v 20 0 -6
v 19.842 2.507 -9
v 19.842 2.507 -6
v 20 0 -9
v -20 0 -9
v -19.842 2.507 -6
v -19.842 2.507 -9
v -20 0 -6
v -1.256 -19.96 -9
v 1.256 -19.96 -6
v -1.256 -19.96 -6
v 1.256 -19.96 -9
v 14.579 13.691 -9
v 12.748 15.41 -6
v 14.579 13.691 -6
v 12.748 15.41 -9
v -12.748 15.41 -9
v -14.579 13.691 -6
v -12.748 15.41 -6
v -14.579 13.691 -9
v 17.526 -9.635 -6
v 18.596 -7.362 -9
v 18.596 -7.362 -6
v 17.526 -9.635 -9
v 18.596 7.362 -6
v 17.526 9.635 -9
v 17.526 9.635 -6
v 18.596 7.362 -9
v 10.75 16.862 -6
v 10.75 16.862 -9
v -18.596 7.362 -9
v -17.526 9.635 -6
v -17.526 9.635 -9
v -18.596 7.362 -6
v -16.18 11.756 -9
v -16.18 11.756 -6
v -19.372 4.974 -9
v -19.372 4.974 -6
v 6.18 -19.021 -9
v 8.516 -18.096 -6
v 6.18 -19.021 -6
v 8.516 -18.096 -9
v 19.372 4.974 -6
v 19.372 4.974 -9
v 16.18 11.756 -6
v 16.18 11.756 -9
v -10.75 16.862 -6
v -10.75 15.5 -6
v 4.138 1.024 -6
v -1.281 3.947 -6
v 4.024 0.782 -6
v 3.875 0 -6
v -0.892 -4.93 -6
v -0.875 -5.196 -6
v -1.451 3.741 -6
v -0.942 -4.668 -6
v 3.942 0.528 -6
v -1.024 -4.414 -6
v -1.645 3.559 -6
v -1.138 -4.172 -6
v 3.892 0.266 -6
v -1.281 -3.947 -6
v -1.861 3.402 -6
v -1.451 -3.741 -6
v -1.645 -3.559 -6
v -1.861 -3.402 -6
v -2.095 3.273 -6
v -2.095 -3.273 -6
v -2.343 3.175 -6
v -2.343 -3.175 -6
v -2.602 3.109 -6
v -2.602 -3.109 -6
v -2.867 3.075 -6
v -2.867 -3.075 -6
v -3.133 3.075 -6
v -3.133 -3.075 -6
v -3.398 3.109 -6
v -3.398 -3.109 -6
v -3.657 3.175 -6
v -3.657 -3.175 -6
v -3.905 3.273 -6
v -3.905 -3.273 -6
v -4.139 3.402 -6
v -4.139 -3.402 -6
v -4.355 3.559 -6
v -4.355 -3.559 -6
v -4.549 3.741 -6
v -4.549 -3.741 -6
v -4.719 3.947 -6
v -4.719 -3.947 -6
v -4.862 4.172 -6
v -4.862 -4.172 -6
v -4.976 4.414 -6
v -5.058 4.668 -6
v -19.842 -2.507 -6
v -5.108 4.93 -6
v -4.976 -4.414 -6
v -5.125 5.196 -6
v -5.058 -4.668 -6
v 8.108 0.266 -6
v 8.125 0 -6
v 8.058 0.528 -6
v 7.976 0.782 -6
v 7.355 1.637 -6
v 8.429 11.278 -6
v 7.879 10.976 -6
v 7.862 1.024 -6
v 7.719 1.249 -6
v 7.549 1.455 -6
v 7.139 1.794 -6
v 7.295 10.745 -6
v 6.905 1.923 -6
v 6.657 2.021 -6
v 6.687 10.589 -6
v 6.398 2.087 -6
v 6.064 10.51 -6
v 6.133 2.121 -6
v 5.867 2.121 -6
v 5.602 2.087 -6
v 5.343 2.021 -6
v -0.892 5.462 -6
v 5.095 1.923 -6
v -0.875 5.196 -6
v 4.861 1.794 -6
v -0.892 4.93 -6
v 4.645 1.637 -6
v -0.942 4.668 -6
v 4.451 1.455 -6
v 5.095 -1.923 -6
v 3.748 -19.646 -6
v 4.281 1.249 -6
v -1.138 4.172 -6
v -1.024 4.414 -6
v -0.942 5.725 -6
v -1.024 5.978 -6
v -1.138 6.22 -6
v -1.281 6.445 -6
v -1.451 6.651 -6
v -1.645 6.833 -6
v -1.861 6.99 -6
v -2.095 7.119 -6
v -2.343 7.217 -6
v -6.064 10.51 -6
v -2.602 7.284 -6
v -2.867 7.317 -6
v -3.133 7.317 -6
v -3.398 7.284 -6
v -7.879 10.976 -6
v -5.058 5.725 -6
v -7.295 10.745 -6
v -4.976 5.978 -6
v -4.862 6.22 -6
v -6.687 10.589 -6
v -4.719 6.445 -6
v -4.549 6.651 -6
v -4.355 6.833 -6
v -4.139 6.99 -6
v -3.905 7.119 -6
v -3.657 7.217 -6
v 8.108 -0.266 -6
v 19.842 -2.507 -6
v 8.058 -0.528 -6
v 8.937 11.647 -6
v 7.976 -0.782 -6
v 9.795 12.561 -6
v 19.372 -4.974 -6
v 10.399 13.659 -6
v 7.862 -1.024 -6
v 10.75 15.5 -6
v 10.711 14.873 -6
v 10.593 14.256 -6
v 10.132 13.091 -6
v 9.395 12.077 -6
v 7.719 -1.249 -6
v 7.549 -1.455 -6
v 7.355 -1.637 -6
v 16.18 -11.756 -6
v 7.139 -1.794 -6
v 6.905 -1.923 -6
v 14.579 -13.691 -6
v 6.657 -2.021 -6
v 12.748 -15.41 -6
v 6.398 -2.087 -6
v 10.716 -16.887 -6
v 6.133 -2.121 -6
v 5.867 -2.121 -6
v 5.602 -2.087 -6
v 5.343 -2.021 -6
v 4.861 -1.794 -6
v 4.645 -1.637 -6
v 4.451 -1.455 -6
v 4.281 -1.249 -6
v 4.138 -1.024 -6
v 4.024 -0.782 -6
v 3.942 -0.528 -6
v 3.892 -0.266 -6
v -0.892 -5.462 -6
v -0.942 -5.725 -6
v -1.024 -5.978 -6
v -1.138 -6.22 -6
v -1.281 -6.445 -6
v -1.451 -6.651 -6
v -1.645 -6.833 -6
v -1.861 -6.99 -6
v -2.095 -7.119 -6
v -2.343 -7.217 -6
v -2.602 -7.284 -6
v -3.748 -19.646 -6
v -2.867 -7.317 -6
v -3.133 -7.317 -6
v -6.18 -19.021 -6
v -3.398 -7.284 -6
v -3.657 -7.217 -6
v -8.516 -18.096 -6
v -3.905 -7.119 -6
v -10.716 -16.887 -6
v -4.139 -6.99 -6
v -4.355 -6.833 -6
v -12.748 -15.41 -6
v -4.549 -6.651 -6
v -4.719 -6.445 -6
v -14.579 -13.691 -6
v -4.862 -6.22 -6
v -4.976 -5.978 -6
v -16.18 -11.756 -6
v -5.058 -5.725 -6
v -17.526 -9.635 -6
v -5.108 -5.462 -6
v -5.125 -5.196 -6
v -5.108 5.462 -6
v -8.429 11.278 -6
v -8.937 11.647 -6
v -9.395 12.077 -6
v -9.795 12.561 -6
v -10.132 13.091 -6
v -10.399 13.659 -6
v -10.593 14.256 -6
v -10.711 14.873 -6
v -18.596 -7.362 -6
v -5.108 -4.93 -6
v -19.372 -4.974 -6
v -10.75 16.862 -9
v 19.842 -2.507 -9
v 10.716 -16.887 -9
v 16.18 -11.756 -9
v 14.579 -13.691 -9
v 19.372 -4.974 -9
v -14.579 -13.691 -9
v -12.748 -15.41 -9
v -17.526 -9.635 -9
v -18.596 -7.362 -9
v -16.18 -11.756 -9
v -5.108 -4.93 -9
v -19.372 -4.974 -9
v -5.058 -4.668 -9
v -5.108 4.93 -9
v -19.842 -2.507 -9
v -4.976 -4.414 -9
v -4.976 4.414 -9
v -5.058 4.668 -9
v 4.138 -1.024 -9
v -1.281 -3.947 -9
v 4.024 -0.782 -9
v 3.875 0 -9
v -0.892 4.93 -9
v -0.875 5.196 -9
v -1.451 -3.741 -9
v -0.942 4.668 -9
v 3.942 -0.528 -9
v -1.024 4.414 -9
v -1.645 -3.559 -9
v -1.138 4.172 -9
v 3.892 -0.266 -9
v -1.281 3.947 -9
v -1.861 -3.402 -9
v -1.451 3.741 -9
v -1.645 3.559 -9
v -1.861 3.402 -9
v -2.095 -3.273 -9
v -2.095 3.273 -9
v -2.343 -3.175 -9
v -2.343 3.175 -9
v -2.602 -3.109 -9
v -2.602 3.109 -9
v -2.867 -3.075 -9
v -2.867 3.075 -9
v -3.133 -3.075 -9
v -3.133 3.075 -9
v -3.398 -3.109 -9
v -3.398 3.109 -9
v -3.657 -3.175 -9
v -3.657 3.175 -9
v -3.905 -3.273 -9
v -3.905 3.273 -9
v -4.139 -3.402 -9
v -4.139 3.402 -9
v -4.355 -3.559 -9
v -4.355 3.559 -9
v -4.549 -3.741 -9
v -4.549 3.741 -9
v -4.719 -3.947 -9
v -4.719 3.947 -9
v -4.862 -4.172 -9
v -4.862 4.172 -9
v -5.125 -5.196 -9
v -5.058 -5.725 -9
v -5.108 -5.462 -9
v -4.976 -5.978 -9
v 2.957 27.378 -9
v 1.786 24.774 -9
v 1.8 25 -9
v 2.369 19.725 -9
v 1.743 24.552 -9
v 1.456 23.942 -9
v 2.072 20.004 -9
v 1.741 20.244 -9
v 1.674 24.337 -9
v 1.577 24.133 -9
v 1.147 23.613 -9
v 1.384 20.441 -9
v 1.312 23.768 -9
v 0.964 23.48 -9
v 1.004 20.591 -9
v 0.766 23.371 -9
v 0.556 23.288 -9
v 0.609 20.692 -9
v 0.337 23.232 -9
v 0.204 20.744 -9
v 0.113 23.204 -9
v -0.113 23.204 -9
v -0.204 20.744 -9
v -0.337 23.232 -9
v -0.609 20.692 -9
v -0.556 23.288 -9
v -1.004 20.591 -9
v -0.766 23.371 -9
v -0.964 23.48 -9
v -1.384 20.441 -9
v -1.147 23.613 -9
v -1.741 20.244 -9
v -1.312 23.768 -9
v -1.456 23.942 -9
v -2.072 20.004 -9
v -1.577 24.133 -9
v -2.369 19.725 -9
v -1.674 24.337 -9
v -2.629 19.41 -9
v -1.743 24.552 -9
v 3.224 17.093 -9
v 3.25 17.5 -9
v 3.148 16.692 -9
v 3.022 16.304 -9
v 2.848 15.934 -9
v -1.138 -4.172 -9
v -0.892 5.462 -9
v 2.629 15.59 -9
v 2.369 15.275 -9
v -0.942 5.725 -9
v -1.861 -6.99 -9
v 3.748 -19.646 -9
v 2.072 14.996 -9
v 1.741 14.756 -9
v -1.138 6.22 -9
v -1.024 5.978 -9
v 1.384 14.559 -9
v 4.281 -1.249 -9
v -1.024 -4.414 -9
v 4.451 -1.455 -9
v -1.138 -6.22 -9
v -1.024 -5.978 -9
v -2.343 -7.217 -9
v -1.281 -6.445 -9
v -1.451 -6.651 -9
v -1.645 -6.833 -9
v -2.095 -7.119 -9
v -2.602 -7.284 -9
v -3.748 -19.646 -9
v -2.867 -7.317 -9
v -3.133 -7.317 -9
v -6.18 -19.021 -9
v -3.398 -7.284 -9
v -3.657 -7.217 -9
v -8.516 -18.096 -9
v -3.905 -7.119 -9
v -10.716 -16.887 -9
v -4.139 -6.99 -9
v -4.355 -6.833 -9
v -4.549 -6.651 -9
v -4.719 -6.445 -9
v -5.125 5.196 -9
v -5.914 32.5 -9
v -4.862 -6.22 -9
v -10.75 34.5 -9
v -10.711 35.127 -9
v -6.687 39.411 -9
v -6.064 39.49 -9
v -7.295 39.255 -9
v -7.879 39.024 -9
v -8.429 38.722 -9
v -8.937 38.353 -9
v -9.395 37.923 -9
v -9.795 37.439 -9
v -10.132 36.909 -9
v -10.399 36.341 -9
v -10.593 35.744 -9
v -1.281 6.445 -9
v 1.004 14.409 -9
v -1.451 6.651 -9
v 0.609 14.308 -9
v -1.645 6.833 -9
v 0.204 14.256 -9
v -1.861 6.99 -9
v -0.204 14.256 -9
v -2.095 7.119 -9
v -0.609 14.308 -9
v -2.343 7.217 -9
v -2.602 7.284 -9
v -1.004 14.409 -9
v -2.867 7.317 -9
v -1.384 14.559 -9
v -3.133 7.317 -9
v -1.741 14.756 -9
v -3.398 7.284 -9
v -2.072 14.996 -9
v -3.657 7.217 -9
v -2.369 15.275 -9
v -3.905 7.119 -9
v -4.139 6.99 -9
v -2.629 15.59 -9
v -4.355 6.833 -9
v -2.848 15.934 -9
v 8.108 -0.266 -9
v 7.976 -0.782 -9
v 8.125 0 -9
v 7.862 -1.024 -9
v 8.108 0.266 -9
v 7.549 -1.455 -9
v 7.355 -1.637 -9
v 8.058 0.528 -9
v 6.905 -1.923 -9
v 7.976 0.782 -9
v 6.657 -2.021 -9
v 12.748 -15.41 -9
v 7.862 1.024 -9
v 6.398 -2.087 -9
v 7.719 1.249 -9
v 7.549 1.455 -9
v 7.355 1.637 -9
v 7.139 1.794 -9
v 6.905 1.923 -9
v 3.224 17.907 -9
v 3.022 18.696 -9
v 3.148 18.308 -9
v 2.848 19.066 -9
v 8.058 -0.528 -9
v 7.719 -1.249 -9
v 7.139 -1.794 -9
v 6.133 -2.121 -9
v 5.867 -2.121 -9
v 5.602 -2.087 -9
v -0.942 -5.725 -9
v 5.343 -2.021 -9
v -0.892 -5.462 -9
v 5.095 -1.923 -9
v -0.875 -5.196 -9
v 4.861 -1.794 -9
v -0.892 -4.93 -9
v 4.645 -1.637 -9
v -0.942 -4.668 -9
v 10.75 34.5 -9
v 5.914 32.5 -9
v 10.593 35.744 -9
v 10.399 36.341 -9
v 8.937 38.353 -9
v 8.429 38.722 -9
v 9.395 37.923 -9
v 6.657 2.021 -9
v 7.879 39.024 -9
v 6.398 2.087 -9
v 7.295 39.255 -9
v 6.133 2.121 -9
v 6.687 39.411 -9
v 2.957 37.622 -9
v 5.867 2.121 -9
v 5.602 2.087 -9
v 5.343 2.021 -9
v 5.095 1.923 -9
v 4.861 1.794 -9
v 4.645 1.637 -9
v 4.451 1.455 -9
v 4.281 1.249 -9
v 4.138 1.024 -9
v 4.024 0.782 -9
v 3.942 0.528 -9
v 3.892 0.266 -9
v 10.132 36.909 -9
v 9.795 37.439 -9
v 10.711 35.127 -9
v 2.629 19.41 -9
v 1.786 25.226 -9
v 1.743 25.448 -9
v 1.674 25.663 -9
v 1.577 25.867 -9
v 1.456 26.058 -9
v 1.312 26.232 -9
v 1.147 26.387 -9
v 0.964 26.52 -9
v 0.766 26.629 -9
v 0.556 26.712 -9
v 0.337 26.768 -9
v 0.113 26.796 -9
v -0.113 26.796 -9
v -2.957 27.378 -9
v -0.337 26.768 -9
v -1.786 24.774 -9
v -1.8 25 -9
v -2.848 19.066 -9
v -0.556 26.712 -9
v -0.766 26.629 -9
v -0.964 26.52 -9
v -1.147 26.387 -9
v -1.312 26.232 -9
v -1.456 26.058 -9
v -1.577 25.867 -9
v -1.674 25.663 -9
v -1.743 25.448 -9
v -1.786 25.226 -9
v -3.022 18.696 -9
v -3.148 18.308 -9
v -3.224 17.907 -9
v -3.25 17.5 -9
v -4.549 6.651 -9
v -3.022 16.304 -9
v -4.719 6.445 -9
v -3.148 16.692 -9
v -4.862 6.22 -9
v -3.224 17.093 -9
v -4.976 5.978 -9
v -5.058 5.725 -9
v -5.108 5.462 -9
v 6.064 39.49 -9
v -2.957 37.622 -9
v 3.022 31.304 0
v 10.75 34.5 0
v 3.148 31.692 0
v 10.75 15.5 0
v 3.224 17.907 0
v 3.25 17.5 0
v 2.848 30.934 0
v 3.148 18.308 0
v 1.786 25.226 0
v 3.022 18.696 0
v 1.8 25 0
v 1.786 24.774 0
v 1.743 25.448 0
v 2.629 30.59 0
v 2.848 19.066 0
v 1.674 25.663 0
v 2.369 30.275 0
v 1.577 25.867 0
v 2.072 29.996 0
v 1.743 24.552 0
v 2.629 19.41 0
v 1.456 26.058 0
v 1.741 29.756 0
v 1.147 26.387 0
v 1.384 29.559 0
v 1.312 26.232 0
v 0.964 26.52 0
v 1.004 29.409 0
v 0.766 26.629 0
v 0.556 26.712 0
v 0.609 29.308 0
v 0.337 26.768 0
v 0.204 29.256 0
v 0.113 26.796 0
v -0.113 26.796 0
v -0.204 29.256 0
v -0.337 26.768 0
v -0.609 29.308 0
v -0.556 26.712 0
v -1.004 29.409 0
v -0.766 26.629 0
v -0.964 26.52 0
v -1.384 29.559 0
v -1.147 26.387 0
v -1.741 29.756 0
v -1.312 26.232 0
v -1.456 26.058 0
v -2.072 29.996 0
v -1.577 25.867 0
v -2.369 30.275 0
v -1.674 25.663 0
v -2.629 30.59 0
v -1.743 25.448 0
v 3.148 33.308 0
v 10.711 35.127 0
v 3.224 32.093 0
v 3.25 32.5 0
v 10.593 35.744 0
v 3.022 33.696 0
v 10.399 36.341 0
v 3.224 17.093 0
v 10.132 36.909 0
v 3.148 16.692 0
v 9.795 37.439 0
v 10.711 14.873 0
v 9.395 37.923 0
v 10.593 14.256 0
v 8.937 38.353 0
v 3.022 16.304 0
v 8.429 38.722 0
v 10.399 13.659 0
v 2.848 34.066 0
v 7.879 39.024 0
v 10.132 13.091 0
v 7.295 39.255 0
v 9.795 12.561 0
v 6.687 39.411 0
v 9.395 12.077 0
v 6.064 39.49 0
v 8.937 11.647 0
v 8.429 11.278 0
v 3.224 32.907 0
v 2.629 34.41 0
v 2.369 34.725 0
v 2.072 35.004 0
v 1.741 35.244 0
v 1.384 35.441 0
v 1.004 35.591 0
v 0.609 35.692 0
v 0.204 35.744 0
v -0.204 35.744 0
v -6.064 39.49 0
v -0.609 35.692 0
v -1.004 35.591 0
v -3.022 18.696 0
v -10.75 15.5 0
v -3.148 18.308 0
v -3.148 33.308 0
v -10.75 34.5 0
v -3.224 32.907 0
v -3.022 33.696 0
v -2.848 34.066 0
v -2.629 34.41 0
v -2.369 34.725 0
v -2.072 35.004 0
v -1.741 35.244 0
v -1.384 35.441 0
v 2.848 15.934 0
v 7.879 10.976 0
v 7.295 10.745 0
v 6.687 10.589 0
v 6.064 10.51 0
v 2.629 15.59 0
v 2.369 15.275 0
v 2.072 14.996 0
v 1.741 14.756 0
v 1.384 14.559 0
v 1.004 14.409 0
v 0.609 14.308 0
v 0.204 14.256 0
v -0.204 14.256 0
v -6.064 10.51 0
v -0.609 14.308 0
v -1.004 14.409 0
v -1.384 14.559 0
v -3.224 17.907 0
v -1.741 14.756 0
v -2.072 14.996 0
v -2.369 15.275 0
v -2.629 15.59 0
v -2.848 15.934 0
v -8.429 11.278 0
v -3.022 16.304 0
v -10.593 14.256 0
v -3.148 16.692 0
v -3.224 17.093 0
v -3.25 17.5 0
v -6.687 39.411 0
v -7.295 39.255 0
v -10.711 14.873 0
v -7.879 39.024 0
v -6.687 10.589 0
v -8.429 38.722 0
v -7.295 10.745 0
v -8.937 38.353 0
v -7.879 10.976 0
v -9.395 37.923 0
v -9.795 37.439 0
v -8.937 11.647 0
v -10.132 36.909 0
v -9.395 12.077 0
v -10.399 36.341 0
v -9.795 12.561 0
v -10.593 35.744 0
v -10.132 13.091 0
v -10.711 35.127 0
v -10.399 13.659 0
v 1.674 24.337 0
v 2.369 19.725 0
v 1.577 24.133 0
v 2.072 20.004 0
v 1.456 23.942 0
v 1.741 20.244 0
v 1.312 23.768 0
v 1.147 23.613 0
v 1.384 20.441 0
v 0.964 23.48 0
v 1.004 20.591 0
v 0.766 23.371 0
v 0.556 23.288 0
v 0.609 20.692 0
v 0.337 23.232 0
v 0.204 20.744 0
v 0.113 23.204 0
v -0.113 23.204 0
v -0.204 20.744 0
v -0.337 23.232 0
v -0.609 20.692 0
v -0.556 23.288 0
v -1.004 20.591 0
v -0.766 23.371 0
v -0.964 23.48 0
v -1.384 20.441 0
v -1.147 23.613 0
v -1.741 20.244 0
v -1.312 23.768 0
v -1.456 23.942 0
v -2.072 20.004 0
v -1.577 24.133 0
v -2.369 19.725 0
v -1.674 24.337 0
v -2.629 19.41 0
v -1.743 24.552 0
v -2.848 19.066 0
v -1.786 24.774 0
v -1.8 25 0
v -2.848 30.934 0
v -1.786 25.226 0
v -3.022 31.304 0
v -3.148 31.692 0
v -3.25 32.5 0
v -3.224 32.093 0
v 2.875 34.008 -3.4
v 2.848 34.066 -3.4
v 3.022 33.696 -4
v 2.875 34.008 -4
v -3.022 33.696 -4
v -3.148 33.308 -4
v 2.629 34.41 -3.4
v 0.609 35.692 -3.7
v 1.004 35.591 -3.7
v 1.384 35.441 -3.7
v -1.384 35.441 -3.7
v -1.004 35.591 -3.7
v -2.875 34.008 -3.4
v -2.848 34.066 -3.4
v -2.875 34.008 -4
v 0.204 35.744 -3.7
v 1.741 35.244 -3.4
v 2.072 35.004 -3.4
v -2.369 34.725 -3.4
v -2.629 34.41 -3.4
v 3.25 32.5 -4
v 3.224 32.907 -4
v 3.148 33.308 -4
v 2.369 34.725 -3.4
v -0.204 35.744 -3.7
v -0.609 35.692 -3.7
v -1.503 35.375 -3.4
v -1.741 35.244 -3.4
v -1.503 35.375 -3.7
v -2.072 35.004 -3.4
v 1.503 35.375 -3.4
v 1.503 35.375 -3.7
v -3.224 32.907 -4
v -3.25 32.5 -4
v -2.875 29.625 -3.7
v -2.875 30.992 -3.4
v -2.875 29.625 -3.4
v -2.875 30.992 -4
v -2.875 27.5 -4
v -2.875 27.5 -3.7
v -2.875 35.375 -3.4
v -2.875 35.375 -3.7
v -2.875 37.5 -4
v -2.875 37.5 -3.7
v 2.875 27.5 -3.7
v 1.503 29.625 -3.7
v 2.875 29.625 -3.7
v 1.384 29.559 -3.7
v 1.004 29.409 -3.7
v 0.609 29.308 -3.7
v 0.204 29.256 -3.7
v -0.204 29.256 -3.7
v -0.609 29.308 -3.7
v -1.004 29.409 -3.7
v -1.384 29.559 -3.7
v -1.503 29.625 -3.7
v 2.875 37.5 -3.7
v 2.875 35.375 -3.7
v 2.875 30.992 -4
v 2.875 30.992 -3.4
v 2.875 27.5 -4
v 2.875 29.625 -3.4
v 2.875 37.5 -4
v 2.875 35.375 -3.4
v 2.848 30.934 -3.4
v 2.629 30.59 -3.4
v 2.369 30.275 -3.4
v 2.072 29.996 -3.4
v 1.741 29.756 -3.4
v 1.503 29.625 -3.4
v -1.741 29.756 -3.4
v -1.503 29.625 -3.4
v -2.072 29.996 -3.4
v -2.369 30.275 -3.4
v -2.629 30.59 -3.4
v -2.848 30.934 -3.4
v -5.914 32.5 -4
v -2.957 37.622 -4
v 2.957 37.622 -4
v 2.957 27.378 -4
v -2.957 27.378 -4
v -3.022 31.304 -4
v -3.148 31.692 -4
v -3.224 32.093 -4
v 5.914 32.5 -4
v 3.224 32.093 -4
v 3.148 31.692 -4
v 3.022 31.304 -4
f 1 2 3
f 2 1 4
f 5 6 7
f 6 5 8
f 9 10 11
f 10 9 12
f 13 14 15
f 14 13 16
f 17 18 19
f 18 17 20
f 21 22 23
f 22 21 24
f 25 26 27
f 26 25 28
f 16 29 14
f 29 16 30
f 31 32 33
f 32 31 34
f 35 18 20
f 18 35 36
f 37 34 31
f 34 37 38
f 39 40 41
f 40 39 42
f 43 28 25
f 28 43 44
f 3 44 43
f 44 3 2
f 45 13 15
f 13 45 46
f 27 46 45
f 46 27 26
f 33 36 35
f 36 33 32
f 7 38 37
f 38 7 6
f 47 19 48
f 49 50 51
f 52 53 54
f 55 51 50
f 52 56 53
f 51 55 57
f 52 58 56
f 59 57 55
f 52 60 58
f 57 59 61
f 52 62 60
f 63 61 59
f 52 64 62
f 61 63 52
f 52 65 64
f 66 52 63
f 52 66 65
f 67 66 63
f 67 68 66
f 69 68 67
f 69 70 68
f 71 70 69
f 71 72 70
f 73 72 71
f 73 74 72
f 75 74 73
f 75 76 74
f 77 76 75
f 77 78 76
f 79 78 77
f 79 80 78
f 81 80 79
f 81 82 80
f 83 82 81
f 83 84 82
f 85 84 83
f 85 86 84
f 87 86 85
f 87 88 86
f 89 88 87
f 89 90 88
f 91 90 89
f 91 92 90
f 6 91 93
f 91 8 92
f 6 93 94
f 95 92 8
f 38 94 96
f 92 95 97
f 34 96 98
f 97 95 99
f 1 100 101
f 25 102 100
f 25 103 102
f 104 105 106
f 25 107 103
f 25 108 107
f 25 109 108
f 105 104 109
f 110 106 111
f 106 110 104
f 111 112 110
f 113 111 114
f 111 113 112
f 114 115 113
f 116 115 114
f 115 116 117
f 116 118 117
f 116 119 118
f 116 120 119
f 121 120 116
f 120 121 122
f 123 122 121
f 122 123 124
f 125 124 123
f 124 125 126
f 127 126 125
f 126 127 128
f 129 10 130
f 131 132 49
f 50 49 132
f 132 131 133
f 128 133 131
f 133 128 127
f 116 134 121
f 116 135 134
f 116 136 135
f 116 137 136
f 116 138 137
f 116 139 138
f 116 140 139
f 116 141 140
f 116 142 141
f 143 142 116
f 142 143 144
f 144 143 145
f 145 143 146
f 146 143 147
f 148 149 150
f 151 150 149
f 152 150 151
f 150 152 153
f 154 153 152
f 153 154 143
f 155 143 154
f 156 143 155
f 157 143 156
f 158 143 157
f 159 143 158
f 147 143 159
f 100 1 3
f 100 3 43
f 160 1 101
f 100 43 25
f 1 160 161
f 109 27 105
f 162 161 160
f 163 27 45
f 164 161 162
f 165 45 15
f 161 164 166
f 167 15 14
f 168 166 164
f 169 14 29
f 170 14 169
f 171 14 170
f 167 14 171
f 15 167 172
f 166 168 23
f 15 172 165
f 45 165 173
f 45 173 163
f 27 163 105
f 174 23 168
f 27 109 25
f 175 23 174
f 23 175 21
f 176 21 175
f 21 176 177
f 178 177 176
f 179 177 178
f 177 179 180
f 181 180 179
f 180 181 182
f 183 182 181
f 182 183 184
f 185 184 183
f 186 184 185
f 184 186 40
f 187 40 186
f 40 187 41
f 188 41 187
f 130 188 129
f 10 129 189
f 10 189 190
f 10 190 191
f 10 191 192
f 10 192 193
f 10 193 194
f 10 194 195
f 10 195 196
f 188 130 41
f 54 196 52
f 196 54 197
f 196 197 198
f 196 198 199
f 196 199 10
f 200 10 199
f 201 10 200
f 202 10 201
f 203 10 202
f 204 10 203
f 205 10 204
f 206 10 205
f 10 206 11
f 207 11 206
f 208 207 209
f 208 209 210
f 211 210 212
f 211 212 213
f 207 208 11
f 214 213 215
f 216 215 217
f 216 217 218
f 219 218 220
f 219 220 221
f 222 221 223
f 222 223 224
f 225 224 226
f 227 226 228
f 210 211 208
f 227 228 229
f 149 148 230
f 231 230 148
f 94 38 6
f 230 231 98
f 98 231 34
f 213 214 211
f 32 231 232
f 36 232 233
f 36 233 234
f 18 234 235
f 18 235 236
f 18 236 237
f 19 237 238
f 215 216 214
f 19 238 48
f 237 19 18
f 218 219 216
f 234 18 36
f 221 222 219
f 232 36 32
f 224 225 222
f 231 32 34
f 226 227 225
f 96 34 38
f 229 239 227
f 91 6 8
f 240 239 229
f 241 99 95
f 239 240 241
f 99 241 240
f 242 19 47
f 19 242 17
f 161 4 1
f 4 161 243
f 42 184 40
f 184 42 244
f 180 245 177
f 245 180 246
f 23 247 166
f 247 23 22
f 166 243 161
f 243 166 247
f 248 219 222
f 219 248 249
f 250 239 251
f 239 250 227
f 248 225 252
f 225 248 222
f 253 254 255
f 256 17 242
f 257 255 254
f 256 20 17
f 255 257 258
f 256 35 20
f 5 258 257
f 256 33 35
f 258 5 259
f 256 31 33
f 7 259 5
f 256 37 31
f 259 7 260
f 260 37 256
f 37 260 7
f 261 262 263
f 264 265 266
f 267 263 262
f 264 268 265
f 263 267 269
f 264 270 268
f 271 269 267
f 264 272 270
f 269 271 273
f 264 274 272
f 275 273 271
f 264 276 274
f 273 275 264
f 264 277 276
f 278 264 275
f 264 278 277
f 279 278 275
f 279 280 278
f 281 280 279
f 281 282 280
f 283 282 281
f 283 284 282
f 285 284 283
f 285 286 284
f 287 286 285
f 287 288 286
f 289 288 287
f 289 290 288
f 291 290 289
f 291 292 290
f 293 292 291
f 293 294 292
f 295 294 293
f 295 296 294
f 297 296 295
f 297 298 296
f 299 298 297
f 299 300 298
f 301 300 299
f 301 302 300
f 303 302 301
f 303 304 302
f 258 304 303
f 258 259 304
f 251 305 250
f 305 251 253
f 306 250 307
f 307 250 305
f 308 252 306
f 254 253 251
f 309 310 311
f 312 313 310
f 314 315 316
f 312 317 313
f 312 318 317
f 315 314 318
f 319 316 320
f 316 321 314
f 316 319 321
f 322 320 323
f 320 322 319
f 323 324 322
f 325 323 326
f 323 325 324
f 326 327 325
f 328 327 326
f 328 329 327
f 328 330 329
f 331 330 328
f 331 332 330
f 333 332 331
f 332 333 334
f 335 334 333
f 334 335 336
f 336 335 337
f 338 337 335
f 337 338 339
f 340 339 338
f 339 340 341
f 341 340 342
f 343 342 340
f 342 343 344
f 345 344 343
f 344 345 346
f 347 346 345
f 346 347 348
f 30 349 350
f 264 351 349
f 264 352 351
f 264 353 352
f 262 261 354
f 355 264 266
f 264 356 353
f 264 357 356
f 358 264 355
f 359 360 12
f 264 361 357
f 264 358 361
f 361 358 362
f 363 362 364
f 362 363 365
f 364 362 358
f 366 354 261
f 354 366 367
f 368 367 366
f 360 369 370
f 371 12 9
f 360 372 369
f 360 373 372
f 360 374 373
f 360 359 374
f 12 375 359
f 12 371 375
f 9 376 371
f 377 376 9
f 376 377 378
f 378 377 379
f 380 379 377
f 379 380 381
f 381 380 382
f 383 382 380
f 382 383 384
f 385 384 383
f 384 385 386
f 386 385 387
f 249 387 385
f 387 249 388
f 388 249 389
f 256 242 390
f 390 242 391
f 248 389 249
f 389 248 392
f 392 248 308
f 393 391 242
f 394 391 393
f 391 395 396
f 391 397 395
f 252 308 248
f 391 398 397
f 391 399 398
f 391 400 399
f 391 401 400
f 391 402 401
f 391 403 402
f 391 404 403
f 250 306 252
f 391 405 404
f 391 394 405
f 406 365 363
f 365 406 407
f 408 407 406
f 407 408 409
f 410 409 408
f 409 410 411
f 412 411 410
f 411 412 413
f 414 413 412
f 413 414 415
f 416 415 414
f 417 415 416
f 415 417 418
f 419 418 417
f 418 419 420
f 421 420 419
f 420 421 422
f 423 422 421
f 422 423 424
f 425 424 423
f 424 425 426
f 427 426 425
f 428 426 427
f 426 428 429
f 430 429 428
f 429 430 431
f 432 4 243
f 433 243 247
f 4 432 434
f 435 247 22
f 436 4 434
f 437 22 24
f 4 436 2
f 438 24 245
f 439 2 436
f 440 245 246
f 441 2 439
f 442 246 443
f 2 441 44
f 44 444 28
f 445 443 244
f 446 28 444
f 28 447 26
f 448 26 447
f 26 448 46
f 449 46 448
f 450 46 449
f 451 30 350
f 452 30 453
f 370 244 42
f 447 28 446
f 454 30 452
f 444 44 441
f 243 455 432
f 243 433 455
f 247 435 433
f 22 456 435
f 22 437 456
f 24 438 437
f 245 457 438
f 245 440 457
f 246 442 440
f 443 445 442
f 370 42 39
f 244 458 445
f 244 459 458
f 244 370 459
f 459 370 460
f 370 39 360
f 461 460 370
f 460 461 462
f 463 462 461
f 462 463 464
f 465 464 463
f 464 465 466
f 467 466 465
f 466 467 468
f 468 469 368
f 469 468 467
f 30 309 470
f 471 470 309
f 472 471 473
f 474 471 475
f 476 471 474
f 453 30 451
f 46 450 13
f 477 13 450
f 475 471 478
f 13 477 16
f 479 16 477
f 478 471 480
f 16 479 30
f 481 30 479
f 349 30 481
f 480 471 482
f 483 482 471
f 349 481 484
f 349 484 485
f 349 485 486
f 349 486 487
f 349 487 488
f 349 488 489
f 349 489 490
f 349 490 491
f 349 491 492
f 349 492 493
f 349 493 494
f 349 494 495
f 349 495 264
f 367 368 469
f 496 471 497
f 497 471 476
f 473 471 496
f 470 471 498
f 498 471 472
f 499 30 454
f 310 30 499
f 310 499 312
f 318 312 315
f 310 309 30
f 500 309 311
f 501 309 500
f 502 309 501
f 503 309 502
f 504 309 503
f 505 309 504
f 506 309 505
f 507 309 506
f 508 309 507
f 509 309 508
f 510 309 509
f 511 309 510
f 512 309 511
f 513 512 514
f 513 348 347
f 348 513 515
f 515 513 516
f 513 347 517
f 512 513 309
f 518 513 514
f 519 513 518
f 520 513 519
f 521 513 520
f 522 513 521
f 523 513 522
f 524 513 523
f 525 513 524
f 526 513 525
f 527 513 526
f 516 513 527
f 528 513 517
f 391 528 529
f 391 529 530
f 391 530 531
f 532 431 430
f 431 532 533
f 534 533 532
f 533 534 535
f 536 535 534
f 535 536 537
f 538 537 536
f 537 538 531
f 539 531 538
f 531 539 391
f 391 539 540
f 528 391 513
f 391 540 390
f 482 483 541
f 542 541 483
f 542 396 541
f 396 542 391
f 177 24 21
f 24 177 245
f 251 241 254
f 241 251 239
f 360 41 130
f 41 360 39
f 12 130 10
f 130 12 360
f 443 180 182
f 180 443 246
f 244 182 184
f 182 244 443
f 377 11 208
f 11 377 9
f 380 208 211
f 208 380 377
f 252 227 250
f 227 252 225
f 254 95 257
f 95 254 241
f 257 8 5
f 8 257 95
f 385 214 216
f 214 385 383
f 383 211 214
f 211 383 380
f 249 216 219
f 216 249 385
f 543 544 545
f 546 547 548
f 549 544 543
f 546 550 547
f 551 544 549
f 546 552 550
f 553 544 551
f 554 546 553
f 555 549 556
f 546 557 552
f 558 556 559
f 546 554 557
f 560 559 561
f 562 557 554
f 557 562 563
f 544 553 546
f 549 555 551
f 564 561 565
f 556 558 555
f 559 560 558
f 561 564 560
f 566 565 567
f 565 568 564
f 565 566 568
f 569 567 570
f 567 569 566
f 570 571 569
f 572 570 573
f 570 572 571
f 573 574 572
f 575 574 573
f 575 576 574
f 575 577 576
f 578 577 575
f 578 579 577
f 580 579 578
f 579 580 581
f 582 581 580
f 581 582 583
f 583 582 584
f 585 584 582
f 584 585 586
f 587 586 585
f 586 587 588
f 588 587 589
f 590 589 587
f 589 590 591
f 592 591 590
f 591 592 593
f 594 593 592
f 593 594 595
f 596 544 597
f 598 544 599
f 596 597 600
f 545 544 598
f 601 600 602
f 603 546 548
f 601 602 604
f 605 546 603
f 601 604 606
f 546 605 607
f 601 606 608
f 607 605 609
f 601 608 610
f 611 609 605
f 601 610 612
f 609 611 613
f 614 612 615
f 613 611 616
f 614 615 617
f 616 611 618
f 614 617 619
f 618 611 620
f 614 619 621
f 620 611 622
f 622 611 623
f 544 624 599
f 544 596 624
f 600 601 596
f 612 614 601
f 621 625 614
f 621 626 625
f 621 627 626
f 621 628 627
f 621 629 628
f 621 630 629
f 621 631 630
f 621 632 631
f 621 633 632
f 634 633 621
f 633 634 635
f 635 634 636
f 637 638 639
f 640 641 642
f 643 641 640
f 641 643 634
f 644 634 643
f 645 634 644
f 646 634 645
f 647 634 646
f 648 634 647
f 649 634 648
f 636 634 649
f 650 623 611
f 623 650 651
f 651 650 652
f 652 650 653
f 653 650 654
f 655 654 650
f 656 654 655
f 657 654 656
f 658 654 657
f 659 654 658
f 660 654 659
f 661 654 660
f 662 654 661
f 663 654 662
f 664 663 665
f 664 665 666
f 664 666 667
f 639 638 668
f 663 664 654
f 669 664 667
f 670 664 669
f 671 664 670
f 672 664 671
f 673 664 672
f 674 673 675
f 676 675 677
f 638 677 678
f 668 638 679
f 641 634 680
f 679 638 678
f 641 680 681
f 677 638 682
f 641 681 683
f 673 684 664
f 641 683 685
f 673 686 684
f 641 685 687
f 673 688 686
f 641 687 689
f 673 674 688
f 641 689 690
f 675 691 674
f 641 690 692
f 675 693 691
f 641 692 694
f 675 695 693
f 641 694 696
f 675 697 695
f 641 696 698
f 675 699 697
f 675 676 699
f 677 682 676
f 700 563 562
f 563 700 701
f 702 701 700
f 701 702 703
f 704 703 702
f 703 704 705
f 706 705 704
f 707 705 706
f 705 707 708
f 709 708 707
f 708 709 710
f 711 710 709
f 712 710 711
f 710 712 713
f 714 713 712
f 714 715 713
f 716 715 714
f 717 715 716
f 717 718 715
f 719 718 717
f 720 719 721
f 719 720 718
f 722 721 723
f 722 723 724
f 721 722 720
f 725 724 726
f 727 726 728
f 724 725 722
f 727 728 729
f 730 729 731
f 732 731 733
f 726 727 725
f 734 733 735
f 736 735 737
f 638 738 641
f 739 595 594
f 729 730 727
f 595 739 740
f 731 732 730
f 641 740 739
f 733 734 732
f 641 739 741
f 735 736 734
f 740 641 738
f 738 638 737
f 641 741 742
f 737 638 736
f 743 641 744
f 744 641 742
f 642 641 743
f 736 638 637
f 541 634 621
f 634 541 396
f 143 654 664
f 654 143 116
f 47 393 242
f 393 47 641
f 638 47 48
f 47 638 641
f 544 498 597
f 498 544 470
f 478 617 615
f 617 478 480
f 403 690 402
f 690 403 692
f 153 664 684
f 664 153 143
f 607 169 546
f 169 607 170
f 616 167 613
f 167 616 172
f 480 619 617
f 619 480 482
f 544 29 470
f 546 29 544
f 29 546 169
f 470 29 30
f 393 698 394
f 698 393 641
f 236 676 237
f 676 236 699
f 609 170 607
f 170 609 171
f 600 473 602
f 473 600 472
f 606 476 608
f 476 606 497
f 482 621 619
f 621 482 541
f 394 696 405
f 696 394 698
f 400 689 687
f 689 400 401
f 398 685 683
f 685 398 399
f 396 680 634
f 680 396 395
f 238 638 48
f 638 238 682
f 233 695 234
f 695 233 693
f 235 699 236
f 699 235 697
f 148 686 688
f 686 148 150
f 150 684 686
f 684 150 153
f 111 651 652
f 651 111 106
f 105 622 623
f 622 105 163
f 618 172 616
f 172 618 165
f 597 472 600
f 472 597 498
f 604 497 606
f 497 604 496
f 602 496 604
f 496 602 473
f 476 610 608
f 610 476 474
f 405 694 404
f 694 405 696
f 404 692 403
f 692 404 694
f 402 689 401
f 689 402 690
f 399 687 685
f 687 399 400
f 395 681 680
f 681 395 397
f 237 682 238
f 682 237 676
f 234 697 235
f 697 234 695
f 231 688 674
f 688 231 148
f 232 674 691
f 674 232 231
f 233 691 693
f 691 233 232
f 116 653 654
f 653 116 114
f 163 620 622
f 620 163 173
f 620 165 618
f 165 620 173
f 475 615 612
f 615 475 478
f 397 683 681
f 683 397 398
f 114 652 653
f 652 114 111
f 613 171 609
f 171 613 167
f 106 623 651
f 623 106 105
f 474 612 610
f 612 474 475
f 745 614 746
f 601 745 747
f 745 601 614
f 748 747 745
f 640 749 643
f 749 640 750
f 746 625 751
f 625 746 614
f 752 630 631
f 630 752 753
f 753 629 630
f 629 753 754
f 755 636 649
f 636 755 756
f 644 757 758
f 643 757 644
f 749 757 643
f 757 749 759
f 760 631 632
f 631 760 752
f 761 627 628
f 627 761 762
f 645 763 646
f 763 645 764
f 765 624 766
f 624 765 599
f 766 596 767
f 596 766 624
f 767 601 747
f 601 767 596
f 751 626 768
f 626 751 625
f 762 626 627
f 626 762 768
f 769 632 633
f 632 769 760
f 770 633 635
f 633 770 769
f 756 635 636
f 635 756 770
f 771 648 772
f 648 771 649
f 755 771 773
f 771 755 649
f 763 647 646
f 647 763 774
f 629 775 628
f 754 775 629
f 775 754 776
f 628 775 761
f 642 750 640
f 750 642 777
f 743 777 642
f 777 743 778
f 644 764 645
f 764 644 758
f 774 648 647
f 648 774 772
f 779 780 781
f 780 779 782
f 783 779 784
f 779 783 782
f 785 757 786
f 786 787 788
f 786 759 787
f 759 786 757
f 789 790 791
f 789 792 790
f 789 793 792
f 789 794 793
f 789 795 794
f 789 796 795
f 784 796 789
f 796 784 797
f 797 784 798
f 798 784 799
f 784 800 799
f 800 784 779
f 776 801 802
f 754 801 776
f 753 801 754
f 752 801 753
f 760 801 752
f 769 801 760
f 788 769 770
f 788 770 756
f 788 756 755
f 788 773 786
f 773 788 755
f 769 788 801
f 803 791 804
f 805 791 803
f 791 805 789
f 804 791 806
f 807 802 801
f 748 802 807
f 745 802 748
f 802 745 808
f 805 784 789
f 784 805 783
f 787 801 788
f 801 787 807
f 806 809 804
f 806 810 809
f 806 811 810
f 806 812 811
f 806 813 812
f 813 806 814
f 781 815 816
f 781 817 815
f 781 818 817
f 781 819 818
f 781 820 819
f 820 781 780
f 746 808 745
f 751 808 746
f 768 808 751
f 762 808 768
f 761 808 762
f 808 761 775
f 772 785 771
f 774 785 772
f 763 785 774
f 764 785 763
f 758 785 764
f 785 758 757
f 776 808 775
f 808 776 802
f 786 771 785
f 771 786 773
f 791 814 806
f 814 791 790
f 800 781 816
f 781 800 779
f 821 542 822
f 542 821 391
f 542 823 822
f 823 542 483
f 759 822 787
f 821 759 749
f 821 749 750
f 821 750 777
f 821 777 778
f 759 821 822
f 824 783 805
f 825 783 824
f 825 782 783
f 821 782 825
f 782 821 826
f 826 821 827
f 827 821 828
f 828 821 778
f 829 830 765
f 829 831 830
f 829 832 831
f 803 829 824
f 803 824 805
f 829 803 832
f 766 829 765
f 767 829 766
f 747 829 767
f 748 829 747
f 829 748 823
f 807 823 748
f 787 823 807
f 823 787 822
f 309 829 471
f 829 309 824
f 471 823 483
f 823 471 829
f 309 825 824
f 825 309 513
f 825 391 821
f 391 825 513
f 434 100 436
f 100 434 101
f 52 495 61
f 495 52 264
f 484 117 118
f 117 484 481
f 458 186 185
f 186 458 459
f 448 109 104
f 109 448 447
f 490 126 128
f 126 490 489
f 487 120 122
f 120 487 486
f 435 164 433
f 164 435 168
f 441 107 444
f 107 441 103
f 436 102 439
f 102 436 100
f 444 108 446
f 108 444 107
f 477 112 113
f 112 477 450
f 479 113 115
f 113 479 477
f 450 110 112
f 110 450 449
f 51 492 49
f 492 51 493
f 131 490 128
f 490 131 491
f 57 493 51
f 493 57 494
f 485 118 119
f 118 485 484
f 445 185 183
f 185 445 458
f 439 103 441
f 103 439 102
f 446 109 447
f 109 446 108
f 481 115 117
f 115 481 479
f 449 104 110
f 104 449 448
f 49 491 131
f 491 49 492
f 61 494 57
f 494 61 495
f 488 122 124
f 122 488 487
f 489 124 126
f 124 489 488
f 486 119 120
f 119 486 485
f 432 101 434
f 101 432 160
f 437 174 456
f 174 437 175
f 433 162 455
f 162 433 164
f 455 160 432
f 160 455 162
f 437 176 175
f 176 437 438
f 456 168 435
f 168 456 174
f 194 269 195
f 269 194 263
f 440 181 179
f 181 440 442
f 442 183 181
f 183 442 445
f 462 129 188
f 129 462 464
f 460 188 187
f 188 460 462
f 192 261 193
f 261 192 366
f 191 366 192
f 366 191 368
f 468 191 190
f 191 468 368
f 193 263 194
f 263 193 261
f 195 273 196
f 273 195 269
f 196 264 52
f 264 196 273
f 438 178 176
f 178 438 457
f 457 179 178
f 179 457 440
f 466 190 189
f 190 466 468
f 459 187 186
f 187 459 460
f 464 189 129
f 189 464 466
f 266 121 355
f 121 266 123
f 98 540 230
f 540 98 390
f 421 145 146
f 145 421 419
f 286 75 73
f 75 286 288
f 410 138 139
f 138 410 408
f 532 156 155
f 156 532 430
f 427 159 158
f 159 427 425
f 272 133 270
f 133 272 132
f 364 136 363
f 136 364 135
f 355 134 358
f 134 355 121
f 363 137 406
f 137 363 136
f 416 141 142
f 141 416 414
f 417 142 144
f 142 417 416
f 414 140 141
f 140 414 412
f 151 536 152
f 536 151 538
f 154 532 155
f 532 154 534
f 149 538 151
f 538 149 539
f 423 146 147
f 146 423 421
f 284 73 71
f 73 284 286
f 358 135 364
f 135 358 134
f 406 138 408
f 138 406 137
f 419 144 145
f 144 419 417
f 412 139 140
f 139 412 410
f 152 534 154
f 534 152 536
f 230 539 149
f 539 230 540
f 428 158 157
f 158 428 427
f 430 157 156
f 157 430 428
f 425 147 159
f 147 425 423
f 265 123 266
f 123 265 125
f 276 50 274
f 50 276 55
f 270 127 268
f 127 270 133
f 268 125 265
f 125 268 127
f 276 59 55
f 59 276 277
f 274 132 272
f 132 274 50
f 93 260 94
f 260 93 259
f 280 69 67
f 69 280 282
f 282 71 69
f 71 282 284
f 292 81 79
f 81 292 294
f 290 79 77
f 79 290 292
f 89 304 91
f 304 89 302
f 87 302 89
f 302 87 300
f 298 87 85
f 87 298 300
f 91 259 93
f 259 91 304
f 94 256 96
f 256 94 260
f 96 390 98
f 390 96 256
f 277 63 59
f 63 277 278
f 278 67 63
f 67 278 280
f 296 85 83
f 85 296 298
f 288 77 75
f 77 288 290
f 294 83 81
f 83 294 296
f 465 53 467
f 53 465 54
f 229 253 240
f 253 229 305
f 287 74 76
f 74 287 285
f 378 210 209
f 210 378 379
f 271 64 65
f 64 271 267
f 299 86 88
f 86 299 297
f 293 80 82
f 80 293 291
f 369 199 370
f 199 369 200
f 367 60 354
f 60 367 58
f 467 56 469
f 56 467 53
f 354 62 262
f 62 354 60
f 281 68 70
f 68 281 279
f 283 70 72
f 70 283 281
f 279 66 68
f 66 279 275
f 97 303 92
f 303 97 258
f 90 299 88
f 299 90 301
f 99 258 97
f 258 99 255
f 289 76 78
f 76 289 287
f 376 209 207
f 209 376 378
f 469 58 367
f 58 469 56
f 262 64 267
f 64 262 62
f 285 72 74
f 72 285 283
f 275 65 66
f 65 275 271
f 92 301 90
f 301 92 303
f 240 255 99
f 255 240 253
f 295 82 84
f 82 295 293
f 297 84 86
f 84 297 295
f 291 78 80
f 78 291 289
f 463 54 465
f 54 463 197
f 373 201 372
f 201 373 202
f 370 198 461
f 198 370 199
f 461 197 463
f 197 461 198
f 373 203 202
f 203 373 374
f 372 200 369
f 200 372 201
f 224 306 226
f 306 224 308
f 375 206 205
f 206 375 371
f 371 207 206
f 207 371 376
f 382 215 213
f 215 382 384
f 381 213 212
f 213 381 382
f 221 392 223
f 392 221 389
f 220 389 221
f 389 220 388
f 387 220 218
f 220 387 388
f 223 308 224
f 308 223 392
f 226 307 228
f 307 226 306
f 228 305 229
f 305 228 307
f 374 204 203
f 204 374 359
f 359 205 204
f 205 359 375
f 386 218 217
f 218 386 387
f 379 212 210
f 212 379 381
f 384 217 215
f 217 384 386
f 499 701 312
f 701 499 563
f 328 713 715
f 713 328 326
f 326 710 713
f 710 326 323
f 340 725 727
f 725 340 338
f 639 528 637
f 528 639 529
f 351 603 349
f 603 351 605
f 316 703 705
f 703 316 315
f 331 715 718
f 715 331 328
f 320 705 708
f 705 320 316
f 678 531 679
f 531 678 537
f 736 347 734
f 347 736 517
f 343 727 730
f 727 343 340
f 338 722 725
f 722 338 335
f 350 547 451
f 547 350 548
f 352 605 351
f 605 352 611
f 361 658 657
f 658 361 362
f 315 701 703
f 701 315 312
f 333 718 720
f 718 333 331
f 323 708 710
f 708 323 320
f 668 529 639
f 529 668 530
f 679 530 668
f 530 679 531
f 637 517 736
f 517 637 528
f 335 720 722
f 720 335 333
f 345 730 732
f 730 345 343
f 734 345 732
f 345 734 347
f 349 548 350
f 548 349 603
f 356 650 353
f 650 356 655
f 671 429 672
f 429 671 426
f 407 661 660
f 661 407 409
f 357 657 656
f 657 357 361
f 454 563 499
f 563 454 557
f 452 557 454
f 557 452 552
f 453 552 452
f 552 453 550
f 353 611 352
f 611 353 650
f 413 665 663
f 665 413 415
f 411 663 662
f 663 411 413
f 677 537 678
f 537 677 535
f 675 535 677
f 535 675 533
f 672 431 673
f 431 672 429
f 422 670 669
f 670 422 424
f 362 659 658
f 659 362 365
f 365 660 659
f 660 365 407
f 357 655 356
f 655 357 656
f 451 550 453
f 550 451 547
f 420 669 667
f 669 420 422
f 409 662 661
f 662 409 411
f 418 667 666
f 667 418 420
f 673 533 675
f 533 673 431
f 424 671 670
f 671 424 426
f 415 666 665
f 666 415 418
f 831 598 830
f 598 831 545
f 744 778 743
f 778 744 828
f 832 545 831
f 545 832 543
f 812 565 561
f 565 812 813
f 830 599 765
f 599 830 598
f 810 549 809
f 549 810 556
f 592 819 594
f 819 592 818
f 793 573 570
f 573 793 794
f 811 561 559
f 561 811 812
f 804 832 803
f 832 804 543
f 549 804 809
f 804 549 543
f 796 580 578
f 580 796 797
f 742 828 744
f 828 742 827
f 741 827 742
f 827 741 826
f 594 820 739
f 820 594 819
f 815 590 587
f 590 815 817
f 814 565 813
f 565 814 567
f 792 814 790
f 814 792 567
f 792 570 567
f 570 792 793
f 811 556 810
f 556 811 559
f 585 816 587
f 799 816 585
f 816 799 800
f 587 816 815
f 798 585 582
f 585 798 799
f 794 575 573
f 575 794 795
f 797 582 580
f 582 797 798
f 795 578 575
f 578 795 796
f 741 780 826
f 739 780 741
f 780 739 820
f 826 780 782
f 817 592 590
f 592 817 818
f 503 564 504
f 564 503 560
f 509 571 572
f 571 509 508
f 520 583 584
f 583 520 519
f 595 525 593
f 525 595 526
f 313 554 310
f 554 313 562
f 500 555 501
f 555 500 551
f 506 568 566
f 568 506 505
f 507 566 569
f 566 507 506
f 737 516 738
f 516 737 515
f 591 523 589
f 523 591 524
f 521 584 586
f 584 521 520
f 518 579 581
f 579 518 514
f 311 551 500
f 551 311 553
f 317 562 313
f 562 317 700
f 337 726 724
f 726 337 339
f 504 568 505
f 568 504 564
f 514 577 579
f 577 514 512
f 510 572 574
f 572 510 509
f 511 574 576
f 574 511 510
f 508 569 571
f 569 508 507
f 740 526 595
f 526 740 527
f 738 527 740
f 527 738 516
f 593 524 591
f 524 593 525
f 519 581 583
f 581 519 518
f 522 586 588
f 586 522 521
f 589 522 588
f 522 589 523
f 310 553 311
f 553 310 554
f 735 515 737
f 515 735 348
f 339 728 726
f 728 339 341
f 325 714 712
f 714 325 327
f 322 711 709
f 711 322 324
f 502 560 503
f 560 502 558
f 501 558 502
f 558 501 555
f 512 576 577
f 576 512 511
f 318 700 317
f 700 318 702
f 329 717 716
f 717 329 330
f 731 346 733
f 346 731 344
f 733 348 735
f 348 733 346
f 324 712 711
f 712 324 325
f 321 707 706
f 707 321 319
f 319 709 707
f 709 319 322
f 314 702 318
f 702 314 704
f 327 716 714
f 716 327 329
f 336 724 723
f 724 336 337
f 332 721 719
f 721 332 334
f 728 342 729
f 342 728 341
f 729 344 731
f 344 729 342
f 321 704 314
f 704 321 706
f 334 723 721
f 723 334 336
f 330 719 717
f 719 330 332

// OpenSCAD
$fn = 50;


difference() {
	union() {
		translate(v = [0, 0, -9.0000000000]) {
			cylinder(h = 3, r = 20.0000000000);
		}
		translate(v = [0, 25.0000000000, -9]) {
			hull() {
				translate(v = [-2.0000000000, 9.5000000000, 0]) {
					cylinder(h = 9, r = 5);
				}
				translate(v = [2.0000000000, 9.5000000000, 0]) {
					cylinder(h = 9, r = 5);
				}
				translate(v = [-2.0000000000, -9.5000000000, 0]) {
					cylinder(h = 9, r = 5);
				}
				translate(v = [2.0000000000, -9.5000000000, 0]) {
					cylinder(h = 9, r = 5);
				}
			}
		}
		translate(v = [0, 25.0000000000, -9]) {
			hull() {
				translate(v = [-5.7500000000, 9.5000000000, 0]) {
					cylinder(h = 9, r = 5);
				}
				translate(v = [5.7500000000, 9.5000000000, 0]) {
					cylinder(h = 9, r = 5);
				}
				translate(v = [-5.7500000000, -9.5000000000, 0]) {
					cylinder(h = 9, r = 5);
				}
				translate(v = [5.7500000000, -9.5000000000, 0]) {
					cylinder(h = 9, r = 5);
				}
			}
		}
		translate(v = [0, 7.5000000000, -9]) {
			hull() {
				translate(v = [-5.7500000000, 17.0000000000, 0]) {
					cylinder(h = 3, r = 5);
				}
				translate(v = [5.7500000000, 17.0000000000, 0]) {
					cylinder(h = 3, r = 5);
				}
				translate(v = [-5.7500000000, -17.0000000000, 0]) {
					cylinder(h = 3, r = 5);
				}
				translate(v = [5.7500000000, -17.0000000000, 0]) {
					cylinder(h = 3, r = 5);
				}
			}
		}
	}
	union() {
		translate(v = [0, 32.5000000000, 0]) {
			rotate(a = [0, 0, 0]) {
				difference() {
					union() {
						#translate(v = [0, 0, -50.0000000000]) {
							cylinder(h = 100, r = 3.2500000000);
						}
					}
					union();
				}
			}
		}
		translate(v = [0, 32.5000000000, -9]) {
			rotate(a = [0, 0, 0]) {
				difference() {
					union() {
						#translate(v = [-2.8750000000, -5.0000000000, -0.3000000000]) {
							cube(size = [5.7500000000, 10, 0.3000000000]);
						}
						#translate(v = [-2.8750000000, -2.8750000000, -0.6000000000]) {
							cube(size = [5.7500000000, 5.7500000000, 0.3000000000]);
						}
						#translate(v = [-2.8750000000, -5.0000000000, 5]) {
							cube(size = [5.7500000000, 10, 0.3000000000]);
						}
						#translate(v = [-2.8750000000, -2.8750000000, 5.3000000000]) {
							cube(size = [5.7500000000, 5.7500000000, 0.3000000000]);
						}
						#linear_extrude(height = 5) {
							polygon(points = [[5.9142500000, 0.0000000000], [2.9571250000, 5.1218907443], [-2.9571250000, 5.1218907443], [-5.9142500000, 0.0000000000], [-2.9571250000, -5.1218907443], [2.9571250000, -5.1218907443]]);
						}
						#translate(v = [-2.8750000000, -5.0000000000, -0.3000000000]) {
							cube(size = [5.7500000000, 10, 0.3000000000]);
						}
						#translate(v = [-2.8750000000, -2.8750000000, -0.6000000000]) {
							cube(size = [5.7500000000, 5.7500000000, 0.3000000000]);
						}
						#translate(v = [-2.8750000000, -5.0000000000, 5]) {
							cube(size = [5.7500000000, 10, 0.3000000000]);
						}
						#translate(v = [-2.8750000000, -2.8750000000, 5.3000000000]) {
							cube(size = [5.7500000000, 5.7500000000, 0.3000000000]);
						}
						#translate(v = [-2.8750000000, -5.0000000000, -0.3000000000]) {
							cube(size = [5.7500000000, 10, 0.3000000000]);
						}
						#translate(v = [-2.8750000000, -2.8750000000, -0.6000000000]) {
							cube(size = [5.7500000000, 5.7500000000, 0.3000000000]);
						}
						#translate(v = [-2.8750000000, -5.0000000000, 5]) {
							cube(size = [5.7500000000, 10, 0.3000000000]);
						}
						#translate(v = [-2.8750000000, -2.8750000000, 5.3000000000]) {
							cube(size = [5.7500000000, 5.7500000000, 0.3000000000]);
						}
					}
					union();
				}
			}
		}
		translate(v = [6.0000000000, 0.0000000000, 41]) {
			rotate(a = [0, 0, 0]) {
				difference() {
					union() {
						translate(v = [0, 0, -59.0000000000]) {
							cylinder(h = 59, r = 2.0000000000);
						}
						translate(v = [0, 0, -3.7000000000]) {
							cylinder(h = 3.7000000000, r1 = 2.1250000000, r2 = 4.3750000000);
						}
						translate(v = [0, 0, -59.0000000000]) {
							cylinder(h = 59, r = 2.1250000000);
						}
						translate(v = [0, 0, -59.0000000000]) {
							cylinder(h = 59, r = 2.0000000000);
						}
					}
					union();
				}
			}
		}
		translate(v = [-3.0000000000, 5.1961524227, 41]) {
			rotate(a = [0, 0, 0]) {
				difference() {
					union() {
						translate(v = [0, 0, -59.0000000000]) {
							cylinder(h = 59, r = 2.0000000000);
						}
						translate(v = [0, 0, -3.7000000000]) {
							cylinder(h = 3.7000000000, r1 = 2.1250000000, r2 = 4.3750000000);
						}
						translate(v = [0, 0, -59.0000000000]) {
							cylinder(h = 59, r = 2.1250000000);
						}
						translate(v = [0, 0, -59.0000000000]) {
							cylinder(h = 59, r = 2.0000000000);
						}
					}
					union();
				}
			}
		}
		translate(v = [-3.0000000000, -5.1961524227, 41]) {
			rotate(a = [0, 0, 0]) {
				difference() {
					union() {
						translate(v = [0, 0, -59.0000000000]) {
							cylinder(h = 59, r = 2.0000000000);
						}
						translate(v = [0, 0, -3.7000000000]) {
							cylinder(h = 3.7000000000, r1 = 2.1250000000, r2 = 4.3750000000);
						}
						translate(v = [0, 0, -59.0000000000]) {
							cylinder(h = 59, r = 2.1250000000);
						}
						translate(v = [0, 0, -59.0000000000]) {
							cylinder(h = 59, r = 2.0000000000);
						}
					}
					union();
				}
			}
		}
		translate(v = [0.0000000000, 17.5000000000, -9]) {
			translate(v = [0, 0, -100]) {
				cylinder(h = 200, r = 3.2500000000);
			}
		}
		translate(v = [0.0000000000, 32.5000000000, -9]) {
			translate(v = [0, 0, -100]) {
				cylinder(h = 200, r = 3.2500000000);
			}
		}
		translate(v = [0.0000000000, 17.5000000000, -9]) {
			translate(v = [0, 0, -100]) {
				cylinder(h = 200, r = 1.8000000000);
			}
		}
		translate(v = [0.0000000000, 25.0000000000, -9]) {
			translate(v = [0, 0, -100]) {
				cylinder(h = 200, r = 1.8000000000);
			}
		}
		translate(v = [0.0000000000, 32.5000000000, -9]) {
			translate(v = [0, 0, -100]) {
				cylinder(h = 200, r = 1.8000000000);
			}
		}
	}
}
